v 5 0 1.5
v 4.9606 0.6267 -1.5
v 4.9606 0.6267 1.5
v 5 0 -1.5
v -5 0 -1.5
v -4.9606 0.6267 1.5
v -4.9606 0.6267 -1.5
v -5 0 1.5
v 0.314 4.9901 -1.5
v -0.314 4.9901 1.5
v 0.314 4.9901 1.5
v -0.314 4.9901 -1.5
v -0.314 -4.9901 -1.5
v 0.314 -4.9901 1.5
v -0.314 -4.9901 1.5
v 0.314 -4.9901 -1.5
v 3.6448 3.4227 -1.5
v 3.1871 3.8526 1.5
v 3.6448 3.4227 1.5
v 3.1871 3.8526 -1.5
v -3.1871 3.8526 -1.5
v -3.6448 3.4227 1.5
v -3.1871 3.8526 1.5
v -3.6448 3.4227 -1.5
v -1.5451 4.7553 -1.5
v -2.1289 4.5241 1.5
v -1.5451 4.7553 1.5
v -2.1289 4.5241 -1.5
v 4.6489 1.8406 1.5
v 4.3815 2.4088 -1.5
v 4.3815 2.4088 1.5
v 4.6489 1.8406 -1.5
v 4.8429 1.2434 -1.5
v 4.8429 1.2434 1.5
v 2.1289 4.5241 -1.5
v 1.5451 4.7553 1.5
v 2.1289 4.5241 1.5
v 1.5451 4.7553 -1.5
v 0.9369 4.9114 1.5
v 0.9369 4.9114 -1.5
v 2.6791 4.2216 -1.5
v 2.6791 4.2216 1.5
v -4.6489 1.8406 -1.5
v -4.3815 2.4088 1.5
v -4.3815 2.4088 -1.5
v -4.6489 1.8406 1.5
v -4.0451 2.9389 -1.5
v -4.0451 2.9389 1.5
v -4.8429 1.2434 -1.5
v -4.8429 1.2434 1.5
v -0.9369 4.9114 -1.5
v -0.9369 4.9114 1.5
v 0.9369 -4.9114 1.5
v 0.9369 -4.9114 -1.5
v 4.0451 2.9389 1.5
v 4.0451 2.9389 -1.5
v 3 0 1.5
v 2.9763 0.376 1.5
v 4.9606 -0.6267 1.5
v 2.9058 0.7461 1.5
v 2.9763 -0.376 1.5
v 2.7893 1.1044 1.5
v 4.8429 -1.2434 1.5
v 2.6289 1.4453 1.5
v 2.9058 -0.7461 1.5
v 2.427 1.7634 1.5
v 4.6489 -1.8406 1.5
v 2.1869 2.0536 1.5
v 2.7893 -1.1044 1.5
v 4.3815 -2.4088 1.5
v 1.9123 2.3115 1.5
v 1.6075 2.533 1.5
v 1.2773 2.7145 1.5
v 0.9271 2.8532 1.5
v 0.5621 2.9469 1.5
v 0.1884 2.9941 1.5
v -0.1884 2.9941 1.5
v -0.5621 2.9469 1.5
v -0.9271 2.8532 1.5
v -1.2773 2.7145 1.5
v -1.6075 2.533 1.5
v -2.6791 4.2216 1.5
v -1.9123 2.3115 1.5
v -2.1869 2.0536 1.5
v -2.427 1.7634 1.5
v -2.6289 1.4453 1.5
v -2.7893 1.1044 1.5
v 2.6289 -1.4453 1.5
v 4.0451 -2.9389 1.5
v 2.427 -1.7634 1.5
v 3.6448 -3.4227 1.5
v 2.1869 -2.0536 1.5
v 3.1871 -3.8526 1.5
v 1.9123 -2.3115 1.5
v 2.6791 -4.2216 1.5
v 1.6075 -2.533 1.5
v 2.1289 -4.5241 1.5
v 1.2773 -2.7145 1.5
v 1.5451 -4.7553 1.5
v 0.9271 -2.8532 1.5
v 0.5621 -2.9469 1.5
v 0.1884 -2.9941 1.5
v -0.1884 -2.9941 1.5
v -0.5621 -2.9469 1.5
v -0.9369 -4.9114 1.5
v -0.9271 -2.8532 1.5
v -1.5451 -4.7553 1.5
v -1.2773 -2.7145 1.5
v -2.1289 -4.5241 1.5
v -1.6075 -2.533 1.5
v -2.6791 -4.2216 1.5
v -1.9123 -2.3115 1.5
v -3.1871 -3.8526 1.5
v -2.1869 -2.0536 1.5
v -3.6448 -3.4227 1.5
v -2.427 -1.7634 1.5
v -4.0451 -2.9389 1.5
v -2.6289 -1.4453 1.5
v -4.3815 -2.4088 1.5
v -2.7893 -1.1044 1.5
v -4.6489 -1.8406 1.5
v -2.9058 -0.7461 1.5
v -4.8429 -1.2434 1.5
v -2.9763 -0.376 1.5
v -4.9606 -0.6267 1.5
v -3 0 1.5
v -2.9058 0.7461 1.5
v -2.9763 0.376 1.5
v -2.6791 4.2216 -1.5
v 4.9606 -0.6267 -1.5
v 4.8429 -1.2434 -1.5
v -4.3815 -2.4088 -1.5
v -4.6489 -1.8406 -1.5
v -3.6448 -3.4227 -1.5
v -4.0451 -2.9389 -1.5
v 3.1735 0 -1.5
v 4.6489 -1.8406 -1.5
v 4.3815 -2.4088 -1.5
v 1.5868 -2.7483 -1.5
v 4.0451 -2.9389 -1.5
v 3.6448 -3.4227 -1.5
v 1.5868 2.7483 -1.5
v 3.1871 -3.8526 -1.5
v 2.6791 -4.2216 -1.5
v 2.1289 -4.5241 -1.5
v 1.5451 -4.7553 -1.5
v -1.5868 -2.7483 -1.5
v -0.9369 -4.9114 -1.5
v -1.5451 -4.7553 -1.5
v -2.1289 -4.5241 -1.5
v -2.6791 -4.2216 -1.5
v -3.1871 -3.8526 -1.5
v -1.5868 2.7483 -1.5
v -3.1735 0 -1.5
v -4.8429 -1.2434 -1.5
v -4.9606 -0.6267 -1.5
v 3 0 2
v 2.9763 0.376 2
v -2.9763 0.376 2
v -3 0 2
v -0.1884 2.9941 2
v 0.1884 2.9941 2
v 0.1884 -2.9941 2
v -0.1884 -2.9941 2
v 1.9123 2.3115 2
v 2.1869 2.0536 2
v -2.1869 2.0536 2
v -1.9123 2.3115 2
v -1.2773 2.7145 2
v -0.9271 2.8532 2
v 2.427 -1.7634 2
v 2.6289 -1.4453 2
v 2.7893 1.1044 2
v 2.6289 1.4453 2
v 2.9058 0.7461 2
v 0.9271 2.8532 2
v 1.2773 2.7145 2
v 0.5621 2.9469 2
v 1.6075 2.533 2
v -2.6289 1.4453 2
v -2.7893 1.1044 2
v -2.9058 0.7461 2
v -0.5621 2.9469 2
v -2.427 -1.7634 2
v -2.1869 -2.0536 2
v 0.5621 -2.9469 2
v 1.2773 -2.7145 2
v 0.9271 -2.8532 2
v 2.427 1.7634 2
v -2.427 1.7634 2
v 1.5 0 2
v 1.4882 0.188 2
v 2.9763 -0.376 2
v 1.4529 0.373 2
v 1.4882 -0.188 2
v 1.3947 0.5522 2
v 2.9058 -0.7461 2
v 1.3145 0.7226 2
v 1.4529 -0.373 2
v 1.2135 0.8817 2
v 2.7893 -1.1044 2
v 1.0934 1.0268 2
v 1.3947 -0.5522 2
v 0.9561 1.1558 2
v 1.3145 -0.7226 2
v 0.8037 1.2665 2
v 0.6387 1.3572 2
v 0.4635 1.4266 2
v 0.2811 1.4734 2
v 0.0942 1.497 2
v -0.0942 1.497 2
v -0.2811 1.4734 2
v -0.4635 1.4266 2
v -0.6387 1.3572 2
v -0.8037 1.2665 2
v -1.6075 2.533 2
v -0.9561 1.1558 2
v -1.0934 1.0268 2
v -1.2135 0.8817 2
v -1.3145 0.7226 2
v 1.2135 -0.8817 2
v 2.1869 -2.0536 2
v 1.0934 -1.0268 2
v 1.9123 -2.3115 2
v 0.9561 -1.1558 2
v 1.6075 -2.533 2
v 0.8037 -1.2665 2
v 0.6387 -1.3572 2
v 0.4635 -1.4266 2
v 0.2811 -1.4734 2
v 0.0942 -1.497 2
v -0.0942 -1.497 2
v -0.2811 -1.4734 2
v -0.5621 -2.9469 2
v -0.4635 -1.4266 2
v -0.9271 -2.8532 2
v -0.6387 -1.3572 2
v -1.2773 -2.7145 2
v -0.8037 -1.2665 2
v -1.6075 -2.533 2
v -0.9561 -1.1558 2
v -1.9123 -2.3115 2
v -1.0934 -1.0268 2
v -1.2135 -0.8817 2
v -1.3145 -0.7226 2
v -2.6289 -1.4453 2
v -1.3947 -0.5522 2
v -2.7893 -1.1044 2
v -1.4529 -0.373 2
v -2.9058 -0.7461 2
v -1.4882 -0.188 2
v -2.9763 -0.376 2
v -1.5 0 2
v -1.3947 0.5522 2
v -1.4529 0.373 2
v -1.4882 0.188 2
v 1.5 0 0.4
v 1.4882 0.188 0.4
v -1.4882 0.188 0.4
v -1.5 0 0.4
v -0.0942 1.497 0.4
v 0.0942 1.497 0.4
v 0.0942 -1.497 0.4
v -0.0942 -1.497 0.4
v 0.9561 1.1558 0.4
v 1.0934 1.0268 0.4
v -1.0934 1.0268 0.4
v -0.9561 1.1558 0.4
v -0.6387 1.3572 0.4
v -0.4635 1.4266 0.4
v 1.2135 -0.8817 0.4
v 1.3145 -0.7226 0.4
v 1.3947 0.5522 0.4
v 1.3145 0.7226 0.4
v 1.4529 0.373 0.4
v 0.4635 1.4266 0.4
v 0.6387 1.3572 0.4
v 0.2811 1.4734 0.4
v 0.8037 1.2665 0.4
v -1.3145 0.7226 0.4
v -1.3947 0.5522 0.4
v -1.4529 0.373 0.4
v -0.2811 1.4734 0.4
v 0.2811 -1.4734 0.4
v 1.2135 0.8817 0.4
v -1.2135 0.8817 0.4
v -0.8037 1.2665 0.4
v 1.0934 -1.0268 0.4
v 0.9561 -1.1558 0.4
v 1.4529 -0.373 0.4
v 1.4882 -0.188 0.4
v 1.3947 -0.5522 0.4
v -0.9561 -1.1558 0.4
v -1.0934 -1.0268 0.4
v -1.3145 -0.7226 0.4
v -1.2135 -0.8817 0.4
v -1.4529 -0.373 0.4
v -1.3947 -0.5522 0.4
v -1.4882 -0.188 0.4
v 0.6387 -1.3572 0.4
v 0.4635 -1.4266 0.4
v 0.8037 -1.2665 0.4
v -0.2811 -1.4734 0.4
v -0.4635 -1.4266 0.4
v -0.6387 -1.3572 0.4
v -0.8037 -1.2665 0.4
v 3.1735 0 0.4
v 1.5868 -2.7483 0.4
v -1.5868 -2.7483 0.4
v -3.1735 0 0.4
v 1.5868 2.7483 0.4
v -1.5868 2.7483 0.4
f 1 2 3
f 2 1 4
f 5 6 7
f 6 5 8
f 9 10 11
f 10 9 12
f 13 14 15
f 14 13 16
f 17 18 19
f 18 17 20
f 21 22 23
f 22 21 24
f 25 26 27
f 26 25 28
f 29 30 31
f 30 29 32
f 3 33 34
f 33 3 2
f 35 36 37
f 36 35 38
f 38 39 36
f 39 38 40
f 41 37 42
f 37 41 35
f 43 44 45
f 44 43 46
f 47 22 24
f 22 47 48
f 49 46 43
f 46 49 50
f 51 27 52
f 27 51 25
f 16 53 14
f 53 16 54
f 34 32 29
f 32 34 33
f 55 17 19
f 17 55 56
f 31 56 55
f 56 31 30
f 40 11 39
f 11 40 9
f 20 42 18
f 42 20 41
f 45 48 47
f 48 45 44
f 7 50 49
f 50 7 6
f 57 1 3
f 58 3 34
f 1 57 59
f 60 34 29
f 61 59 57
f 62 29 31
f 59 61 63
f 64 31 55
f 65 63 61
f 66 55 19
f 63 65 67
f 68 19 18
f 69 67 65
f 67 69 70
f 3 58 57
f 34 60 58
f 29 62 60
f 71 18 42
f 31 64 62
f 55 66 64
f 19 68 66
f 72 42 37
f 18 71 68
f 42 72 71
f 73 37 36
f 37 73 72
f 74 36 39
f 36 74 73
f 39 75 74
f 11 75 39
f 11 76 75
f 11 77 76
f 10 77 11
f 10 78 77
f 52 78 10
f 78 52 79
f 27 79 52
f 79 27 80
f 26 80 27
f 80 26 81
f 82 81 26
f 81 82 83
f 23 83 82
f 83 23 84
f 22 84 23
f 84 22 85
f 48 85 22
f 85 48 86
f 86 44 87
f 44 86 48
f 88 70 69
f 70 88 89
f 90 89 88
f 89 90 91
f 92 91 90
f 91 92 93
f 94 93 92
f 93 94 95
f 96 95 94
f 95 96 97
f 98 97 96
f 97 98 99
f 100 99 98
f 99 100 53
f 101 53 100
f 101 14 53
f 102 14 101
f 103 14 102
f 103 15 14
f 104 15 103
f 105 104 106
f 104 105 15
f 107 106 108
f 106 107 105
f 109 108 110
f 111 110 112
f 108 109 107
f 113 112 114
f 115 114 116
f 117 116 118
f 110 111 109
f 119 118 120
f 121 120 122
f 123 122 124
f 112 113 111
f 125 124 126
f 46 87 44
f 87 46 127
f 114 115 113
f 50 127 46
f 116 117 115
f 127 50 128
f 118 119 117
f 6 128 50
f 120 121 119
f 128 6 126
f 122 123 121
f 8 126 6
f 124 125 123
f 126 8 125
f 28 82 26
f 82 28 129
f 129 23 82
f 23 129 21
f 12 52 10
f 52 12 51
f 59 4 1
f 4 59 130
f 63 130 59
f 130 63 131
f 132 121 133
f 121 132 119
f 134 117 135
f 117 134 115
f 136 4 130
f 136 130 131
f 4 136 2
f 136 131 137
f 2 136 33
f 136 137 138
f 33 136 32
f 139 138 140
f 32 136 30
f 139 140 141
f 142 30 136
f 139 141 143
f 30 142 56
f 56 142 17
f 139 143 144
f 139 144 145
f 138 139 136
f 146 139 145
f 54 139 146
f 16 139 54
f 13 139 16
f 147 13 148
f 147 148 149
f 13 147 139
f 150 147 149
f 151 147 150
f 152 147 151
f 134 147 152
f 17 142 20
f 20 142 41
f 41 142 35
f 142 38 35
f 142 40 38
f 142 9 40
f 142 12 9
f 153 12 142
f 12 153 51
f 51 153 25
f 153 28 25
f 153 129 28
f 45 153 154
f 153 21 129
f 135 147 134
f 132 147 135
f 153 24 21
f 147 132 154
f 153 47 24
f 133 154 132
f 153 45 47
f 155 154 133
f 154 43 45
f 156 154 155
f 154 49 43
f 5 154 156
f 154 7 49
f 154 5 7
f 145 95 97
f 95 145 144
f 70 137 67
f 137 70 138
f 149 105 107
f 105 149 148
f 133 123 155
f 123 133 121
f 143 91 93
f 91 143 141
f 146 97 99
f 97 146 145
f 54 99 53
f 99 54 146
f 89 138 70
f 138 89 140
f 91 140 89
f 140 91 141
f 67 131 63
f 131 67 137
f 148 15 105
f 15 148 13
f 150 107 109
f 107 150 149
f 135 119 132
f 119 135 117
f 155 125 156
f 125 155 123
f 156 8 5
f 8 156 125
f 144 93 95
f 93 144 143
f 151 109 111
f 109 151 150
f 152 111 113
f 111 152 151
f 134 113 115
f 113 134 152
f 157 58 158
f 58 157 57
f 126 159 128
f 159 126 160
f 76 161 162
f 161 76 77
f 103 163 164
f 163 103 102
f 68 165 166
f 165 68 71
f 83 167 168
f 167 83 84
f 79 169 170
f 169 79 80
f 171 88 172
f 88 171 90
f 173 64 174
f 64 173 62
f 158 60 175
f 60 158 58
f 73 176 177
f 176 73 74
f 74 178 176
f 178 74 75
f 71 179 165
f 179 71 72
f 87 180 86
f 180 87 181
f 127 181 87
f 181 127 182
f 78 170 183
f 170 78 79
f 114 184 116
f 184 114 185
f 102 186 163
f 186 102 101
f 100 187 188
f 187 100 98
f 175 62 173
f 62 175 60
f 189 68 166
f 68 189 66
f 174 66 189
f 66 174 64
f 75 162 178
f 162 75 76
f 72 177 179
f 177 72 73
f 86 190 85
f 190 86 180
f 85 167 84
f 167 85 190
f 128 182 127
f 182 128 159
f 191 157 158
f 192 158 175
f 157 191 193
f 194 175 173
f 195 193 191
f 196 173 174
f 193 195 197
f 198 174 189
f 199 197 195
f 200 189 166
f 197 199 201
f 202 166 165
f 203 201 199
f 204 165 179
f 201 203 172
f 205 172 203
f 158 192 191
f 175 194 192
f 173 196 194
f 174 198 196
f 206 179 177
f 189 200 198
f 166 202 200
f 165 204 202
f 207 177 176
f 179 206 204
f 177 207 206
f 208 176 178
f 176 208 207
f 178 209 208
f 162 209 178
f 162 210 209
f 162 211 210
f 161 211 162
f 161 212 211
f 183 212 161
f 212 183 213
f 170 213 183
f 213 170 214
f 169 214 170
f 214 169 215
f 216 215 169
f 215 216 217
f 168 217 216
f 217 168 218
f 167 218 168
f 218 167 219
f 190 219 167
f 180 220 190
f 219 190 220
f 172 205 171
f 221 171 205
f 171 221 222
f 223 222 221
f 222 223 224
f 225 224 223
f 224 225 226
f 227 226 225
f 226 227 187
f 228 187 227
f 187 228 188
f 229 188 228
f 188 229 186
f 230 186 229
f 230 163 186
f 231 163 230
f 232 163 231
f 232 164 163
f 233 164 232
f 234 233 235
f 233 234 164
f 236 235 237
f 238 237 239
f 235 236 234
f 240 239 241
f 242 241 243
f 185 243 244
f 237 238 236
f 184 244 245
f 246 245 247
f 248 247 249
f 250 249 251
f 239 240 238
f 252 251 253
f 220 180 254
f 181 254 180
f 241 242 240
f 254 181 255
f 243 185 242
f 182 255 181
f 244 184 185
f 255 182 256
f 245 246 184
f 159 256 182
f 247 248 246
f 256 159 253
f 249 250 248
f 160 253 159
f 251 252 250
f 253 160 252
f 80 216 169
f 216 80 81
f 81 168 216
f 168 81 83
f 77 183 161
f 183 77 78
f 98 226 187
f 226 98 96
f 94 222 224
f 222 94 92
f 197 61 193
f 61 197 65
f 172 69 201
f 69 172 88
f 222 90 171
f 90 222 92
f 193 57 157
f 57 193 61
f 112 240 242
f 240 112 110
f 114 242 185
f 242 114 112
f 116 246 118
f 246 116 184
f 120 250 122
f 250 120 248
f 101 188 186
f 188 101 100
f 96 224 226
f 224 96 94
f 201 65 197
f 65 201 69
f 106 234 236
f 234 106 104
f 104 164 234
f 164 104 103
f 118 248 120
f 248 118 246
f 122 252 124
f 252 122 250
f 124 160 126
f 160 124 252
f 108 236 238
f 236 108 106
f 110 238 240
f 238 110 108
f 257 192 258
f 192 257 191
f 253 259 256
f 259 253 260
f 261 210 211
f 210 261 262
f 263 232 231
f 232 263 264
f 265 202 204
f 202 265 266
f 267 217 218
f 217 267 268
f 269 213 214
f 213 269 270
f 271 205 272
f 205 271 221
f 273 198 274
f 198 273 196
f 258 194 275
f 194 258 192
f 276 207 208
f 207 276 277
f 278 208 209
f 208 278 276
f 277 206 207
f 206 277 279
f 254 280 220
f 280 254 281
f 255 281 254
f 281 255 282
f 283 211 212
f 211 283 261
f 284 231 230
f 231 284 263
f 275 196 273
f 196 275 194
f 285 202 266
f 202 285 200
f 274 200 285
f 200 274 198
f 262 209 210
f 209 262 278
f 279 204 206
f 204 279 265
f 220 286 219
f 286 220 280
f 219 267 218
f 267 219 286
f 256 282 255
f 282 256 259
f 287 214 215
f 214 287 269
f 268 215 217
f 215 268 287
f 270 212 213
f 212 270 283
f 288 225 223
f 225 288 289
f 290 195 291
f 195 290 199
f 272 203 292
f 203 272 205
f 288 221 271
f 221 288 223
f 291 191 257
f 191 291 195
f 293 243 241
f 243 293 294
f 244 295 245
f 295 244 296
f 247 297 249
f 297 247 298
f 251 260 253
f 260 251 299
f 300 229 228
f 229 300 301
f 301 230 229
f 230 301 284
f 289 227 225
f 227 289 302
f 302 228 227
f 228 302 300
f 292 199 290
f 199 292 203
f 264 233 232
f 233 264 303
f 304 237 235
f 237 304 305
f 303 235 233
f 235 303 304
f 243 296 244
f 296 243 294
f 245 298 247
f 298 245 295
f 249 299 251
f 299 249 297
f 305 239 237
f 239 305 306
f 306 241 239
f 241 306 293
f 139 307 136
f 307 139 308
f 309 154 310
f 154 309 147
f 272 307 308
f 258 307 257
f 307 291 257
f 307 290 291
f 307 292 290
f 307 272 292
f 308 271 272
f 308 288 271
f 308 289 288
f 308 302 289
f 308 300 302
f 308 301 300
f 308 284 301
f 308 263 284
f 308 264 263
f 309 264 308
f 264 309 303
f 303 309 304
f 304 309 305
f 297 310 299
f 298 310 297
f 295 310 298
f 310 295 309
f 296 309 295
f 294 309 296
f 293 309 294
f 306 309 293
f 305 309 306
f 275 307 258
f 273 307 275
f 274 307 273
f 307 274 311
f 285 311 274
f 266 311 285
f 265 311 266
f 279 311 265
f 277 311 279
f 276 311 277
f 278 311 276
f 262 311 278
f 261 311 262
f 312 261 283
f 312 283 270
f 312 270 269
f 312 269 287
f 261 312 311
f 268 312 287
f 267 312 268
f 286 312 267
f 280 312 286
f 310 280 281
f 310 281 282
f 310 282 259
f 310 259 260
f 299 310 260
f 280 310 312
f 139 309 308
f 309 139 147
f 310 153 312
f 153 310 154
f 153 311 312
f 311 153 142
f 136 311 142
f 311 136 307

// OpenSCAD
$fn = 50;


difference() {
	union() {
		translate(v = [0, 0, -1.5000000000]) {
			rotate(a = [0, 0, 0]) {
				cylinder(h = 3, r = 5.0000000000);
			}
		}
		translate(v = [0, 0, -1.5000000000]) {
			rotate(a = [0, 0, 0]) {
				cylinder(h = 3.5000000000, r = 3.0000000000);
			}
		}
	}
	union() {
		translate(v = [0, 0, -125.0000000000]) {
			rotate(a = [0, 0, 0]) {
				cylinder(h = 250, r = 1.5000000000);
			}
		}
		translate(v = [0, 0, -2.1000000000]) {
			rotate(a = [0, 0, 0]) {
				#translate(v = [0, 0, 0]) {
					rotate(a = [0, 0, 0]) {
						linear_extrude(height = 2.5000000000) {
							polygon(points = [[3.1735000000, 0.0000000000], [1.5867500000, 2.7483316189], [-1.5867500000, 2.7483316189], [-3.1735000000, 0.0000000000], [-1.5867500000, -2.7483316189], [1.5867500000, -2.7483316189]]);
						}
					}
				}
			}
		}
	}
}
